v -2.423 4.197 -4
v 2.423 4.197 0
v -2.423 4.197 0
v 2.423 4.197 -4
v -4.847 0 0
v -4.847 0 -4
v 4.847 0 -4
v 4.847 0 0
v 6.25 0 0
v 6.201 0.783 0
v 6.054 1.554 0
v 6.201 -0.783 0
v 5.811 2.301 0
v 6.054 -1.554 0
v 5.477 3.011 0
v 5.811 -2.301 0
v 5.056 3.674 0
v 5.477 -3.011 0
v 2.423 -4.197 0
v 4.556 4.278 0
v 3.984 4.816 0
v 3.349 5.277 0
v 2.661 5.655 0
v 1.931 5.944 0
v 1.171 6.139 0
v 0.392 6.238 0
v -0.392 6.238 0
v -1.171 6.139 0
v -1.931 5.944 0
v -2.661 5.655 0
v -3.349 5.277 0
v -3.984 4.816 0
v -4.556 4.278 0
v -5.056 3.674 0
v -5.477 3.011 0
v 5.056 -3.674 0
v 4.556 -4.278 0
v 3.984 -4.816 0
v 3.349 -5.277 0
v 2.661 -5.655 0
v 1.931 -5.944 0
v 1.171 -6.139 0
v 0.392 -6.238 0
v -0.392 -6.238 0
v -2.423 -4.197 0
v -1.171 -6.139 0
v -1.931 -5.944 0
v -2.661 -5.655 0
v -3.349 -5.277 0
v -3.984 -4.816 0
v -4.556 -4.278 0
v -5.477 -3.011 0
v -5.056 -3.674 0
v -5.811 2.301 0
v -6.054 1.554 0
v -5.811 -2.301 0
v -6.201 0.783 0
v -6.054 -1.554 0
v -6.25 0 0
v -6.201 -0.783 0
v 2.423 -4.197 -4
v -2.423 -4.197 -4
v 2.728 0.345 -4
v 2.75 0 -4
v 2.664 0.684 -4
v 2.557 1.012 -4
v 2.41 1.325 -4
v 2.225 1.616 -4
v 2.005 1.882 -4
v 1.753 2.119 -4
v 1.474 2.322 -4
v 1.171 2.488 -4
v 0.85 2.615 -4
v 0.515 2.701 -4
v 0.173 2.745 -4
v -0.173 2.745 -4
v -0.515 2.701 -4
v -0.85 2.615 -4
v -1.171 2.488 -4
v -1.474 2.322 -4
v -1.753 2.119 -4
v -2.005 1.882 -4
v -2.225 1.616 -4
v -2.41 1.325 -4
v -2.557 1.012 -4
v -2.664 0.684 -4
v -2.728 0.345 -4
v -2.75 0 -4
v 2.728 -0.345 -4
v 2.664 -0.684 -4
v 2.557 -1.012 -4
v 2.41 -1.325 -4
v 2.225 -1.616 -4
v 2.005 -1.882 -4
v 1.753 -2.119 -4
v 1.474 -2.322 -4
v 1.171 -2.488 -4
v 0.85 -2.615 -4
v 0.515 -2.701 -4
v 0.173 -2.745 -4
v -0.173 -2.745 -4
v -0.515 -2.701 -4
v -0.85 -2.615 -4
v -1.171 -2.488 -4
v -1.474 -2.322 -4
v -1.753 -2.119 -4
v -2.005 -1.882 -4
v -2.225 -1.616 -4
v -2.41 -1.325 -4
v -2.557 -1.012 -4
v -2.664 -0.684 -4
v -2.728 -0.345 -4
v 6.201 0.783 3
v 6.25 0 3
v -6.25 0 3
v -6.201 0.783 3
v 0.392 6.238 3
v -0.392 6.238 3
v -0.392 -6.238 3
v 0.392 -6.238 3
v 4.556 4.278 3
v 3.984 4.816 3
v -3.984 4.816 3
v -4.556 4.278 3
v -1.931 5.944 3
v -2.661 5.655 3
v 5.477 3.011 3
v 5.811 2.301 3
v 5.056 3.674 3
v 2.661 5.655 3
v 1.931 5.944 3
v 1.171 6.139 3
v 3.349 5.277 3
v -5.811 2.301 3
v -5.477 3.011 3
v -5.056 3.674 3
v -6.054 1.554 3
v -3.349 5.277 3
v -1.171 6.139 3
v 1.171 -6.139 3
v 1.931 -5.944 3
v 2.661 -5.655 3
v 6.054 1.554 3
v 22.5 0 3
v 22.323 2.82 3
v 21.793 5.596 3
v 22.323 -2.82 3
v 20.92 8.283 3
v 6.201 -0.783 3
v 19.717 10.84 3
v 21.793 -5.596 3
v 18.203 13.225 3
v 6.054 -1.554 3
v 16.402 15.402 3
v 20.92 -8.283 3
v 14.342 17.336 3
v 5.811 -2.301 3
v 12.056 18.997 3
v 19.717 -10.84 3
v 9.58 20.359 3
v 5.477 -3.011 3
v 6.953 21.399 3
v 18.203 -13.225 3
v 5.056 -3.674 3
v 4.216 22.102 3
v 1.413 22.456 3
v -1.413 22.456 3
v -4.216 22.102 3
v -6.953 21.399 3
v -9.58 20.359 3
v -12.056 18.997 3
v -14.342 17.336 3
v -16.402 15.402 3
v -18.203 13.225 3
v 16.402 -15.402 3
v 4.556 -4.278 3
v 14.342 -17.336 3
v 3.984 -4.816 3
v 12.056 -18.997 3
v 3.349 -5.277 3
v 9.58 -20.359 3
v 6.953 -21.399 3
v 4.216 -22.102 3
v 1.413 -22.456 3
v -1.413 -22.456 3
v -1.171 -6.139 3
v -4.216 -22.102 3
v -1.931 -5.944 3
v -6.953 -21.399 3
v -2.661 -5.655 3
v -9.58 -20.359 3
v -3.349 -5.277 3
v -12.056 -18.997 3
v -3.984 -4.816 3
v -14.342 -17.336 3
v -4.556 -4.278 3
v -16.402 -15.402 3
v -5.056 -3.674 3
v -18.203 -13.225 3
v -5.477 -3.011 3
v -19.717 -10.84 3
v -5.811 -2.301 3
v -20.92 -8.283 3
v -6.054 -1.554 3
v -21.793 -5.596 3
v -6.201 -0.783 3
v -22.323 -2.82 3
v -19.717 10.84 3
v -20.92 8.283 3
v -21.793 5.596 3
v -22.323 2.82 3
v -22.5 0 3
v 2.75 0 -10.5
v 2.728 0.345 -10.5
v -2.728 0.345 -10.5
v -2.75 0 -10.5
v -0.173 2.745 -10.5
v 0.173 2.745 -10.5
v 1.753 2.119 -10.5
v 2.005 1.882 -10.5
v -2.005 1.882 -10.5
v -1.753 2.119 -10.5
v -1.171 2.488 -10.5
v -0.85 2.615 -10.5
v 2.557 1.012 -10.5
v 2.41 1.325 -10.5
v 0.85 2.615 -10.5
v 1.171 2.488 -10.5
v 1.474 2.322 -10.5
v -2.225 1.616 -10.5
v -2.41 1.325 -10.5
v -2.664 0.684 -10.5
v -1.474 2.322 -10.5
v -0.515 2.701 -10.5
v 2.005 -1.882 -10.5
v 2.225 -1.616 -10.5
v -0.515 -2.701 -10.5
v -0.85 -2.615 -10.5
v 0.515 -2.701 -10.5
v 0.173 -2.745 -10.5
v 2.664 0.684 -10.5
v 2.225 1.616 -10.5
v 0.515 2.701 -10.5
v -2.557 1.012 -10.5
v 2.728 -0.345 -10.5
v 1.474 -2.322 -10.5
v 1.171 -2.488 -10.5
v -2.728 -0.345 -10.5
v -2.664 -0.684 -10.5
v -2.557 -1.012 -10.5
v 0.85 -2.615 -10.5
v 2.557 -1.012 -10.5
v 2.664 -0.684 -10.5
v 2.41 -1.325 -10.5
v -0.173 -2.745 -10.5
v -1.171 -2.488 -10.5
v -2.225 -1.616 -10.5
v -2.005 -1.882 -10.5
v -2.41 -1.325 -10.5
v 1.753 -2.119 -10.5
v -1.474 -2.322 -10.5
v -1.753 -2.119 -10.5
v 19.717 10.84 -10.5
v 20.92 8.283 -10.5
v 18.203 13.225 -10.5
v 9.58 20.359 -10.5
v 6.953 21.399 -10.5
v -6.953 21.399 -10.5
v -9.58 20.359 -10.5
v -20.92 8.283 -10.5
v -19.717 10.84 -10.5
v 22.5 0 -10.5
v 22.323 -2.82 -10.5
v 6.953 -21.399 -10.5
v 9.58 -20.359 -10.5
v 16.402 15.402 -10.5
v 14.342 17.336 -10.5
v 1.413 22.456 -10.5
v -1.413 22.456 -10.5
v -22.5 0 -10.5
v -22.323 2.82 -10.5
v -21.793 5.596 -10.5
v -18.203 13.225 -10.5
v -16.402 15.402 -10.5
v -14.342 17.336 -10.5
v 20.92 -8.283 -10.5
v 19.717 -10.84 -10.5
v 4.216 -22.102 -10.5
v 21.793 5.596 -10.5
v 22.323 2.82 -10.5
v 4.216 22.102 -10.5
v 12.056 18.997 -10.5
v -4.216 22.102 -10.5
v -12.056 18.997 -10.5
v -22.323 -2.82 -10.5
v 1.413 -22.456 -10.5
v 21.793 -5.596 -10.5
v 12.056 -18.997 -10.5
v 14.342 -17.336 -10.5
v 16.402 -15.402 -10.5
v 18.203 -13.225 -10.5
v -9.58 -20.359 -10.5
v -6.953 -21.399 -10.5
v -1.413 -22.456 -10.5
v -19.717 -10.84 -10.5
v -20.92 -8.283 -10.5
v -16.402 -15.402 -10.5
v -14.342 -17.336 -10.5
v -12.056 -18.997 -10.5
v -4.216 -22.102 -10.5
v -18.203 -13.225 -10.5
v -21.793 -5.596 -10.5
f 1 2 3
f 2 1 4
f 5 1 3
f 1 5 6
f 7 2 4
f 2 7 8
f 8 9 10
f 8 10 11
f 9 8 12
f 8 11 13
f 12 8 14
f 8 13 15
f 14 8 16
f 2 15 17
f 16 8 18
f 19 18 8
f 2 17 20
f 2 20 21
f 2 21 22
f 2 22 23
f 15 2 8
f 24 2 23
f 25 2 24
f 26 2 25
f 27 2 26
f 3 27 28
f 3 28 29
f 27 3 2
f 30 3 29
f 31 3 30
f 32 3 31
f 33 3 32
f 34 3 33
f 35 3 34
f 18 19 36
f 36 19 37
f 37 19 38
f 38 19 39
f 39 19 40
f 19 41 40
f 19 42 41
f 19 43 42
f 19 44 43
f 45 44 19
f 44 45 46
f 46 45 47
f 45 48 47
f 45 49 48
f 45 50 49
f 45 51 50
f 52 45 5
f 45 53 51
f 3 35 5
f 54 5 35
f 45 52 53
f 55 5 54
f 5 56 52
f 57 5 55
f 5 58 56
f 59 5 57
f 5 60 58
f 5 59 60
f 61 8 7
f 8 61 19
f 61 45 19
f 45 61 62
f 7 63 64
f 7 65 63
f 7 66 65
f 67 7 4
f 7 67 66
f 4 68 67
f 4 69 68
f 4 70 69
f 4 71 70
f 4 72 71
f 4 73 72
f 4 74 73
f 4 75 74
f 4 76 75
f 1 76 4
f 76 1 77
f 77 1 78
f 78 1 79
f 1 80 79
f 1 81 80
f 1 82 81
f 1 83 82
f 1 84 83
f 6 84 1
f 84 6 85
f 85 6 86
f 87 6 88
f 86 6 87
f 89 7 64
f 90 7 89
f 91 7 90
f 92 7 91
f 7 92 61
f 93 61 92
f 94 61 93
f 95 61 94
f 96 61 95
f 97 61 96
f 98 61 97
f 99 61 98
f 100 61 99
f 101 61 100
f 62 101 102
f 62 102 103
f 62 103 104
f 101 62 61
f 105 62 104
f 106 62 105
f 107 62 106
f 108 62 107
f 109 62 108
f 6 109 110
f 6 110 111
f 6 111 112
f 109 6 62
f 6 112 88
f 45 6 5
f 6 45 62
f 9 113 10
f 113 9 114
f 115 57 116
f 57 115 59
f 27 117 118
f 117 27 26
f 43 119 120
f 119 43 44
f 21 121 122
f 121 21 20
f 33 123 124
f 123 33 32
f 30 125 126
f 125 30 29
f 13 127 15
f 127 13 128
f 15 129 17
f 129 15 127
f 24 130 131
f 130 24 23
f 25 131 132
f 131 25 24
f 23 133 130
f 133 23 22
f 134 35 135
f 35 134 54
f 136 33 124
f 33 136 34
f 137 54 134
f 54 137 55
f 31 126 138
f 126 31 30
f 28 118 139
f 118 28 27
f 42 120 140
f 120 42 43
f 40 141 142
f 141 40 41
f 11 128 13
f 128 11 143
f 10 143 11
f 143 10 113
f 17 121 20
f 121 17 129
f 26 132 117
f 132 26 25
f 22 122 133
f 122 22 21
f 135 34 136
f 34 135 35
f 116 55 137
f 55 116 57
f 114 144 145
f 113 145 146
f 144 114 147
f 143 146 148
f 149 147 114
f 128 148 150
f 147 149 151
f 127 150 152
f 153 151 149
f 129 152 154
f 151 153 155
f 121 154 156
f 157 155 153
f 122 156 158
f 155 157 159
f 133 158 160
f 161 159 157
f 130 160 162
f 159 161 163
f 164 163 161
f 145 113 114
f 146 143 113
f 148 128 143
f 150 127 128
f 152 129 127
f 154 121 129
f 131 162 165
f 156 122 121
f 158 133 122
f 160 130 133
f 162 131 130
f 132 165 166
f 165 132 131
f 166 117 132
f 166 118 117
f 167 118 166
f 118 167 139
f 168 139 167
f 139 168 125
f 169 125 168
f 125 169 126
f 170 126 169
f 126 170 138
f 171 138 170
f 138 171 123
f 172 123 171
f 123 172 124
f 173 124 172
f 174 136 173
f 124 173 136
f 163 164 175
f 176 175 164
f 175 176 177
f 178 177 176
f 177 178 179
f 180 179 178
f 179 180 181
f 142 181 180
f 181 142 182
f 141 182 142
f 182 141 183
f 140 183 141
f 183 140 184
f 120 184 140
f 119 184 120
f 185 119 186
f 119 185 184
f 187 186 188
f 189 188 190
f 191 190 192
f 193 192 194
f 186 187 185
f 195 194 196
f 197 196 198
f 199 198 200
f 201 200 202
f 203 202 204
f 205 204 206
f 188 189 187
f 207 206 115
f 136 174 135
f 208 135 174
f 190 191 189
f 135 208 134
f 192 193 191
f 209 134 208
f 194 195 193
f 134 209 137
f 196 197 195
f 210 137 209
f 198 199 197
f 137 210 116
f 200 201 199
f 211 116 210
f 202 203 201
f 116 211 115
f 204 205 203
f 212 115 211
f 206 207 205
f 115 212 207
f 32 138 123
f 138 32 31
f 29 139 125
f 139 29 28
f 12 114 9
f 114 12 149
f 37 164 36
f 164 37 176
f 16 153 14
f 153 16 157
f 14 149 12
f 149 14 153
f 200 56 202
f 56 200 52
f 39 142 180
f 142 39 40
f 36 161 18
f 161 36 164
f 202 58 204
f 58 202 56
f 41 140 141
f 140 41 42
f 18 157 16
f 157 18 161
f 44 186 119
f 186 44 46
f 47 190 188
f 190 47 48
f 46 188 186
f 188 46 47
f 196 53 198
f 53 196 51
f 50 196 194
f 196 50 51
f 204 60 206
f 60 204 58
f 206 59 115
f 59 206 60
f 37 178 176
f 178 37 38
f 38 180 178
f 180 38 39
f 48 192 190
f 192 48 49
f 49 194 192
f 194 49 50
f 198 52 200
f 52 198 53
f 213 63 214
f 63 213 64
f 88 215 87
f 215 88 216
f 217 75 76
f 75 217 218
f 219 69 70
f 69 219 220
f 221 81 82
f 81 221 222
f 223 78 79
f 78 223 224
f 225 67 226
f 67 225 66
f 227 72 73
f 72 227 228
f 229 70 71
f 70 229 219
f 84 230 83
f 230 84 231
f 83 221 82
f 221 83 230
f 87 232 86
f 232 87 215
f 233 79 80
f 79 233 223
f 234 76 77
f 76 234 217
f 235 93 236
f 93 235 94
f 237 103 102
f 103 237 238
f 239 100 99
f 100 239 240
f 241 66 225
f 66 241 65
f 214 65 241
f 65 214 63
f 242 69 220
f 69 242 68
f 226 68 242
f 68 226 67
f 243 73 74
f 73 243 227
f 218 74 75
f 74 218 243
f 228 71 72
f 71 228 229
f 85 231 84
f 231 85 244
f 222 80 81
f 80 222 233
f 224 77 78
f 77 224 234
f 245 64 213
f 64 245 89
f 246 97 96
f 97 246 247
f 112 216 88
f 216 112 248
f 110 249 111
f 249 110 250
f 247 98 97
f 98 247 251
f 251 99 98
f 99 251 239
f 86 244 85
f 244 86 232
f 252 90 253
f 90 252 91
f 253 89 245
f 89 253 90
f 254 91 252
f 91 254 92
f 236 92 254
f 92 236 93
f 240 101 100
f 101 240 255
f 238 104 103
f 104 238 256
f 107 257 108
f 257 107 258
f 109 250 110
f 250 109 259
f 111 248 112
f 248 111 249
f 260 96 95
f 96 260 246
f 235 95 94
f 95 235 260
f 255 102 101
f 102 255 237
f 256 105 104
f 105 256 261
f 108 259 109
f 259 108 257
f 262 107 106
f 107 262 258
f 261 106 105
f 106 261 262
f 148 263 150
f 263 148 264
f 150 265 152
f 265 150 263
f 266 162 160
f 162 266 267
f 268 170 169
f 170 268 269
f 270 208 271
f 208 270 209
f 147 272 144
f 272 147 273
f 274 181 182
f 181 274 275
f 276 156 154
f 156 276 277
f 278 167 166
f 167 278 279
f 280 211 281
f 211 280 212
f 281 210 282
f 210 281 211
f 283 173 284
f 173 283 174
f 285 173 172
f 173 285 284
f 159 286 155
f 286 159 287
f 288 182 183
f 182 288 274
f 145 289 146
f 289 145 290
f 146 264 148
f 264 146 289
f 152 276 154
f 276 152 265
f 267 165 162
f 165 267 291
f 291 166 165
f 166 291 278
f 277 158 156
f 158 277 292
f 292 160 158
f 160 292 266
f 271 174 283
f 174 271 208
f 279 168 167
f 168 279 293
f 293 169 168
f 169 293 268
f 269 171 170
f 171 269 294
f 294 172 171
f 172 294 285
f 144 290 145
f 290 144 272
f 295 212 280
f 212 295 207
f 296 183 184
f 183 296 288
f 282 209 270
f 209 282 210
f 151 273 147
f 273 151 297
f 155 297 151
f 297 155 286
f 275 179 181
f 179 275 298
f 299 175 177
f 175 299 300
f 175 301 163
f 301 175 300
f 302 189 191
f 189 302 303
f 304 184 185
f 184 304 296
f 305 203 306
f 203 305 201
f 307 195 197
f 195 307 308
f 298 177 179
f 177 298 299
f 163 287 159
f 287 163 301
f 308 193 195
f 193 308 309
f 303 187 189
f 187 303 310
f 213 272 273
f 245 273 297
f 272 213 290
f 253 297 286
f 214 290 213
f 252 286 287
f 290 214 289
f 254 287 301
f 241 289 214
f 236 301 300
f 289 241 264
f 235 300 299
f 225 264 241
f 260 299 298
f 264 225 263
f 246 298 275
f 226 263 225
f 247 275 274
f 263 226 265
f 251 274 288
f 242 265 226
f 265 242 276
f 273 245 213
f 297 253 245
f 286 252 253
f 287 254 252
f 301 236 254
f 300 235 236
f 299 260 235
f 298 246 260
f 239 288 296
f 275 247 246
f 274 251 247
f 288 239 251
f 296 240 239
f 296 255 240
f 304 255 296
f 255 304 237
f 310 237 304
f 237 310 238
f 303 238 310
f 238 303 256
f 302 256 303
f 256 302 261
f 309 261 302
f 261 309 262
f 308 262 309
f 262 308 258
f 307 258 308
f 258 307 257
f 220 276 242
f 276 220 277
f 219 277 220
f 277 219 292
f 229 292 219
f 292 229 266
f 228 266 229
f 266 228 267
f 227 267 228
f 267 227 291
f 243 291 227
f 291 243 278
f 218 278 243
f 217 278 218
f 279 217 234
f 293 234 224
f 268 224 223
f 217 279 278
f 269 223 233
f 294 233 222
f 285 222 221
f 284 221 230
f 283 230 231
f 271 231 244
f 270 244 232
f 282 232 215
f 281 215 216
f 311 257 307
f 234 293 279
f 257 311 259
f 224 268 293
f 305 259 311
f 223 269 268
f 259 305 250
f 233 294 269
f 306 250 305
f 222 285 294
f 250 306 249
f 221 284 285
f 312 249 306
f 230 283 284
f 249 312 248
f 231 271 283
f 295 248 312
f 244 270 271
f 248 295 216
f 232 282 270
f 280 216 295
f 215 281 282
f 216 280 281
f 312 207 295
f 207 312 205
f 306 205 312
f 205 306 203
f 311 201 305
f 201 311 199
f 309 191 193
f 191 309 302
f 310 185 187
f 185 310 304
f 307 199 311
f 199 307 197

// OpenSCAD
$fn = 50;


difference() {
	union() {
		translate(v = [0, 0, -10.5000000000]) {
			cylinder(h = 13.5000000000, r = 22.5000000000);
		}
	}
	union() {
		translate(v = [0, 0, 0]) {
			rotate(a = [0, 0, 0]) {
				difference() {
					union() {
						translate(v = [0, 0, -4]) {
							linear_extrude(height = 4) {
								polygon(points = [[4.8468000000, 0.0000000000], [2.4234000000, 4.1974519271], [-2.4234000000, 4.1974519271], [-4.8468000000, 0.0000000000], [-2.4234000000, -4.1974519271], [2.4234000000, -4.1974519271]]);
							}
						}
					}
					union();
				}
			}
		}
		#cylinder(h = 3, r = 6.2500000000);
		#translate(v = [0, 0, -100.0000000000]) {
			cylinder(h = 200, r = 2.7500000000);
		}
	}
}
